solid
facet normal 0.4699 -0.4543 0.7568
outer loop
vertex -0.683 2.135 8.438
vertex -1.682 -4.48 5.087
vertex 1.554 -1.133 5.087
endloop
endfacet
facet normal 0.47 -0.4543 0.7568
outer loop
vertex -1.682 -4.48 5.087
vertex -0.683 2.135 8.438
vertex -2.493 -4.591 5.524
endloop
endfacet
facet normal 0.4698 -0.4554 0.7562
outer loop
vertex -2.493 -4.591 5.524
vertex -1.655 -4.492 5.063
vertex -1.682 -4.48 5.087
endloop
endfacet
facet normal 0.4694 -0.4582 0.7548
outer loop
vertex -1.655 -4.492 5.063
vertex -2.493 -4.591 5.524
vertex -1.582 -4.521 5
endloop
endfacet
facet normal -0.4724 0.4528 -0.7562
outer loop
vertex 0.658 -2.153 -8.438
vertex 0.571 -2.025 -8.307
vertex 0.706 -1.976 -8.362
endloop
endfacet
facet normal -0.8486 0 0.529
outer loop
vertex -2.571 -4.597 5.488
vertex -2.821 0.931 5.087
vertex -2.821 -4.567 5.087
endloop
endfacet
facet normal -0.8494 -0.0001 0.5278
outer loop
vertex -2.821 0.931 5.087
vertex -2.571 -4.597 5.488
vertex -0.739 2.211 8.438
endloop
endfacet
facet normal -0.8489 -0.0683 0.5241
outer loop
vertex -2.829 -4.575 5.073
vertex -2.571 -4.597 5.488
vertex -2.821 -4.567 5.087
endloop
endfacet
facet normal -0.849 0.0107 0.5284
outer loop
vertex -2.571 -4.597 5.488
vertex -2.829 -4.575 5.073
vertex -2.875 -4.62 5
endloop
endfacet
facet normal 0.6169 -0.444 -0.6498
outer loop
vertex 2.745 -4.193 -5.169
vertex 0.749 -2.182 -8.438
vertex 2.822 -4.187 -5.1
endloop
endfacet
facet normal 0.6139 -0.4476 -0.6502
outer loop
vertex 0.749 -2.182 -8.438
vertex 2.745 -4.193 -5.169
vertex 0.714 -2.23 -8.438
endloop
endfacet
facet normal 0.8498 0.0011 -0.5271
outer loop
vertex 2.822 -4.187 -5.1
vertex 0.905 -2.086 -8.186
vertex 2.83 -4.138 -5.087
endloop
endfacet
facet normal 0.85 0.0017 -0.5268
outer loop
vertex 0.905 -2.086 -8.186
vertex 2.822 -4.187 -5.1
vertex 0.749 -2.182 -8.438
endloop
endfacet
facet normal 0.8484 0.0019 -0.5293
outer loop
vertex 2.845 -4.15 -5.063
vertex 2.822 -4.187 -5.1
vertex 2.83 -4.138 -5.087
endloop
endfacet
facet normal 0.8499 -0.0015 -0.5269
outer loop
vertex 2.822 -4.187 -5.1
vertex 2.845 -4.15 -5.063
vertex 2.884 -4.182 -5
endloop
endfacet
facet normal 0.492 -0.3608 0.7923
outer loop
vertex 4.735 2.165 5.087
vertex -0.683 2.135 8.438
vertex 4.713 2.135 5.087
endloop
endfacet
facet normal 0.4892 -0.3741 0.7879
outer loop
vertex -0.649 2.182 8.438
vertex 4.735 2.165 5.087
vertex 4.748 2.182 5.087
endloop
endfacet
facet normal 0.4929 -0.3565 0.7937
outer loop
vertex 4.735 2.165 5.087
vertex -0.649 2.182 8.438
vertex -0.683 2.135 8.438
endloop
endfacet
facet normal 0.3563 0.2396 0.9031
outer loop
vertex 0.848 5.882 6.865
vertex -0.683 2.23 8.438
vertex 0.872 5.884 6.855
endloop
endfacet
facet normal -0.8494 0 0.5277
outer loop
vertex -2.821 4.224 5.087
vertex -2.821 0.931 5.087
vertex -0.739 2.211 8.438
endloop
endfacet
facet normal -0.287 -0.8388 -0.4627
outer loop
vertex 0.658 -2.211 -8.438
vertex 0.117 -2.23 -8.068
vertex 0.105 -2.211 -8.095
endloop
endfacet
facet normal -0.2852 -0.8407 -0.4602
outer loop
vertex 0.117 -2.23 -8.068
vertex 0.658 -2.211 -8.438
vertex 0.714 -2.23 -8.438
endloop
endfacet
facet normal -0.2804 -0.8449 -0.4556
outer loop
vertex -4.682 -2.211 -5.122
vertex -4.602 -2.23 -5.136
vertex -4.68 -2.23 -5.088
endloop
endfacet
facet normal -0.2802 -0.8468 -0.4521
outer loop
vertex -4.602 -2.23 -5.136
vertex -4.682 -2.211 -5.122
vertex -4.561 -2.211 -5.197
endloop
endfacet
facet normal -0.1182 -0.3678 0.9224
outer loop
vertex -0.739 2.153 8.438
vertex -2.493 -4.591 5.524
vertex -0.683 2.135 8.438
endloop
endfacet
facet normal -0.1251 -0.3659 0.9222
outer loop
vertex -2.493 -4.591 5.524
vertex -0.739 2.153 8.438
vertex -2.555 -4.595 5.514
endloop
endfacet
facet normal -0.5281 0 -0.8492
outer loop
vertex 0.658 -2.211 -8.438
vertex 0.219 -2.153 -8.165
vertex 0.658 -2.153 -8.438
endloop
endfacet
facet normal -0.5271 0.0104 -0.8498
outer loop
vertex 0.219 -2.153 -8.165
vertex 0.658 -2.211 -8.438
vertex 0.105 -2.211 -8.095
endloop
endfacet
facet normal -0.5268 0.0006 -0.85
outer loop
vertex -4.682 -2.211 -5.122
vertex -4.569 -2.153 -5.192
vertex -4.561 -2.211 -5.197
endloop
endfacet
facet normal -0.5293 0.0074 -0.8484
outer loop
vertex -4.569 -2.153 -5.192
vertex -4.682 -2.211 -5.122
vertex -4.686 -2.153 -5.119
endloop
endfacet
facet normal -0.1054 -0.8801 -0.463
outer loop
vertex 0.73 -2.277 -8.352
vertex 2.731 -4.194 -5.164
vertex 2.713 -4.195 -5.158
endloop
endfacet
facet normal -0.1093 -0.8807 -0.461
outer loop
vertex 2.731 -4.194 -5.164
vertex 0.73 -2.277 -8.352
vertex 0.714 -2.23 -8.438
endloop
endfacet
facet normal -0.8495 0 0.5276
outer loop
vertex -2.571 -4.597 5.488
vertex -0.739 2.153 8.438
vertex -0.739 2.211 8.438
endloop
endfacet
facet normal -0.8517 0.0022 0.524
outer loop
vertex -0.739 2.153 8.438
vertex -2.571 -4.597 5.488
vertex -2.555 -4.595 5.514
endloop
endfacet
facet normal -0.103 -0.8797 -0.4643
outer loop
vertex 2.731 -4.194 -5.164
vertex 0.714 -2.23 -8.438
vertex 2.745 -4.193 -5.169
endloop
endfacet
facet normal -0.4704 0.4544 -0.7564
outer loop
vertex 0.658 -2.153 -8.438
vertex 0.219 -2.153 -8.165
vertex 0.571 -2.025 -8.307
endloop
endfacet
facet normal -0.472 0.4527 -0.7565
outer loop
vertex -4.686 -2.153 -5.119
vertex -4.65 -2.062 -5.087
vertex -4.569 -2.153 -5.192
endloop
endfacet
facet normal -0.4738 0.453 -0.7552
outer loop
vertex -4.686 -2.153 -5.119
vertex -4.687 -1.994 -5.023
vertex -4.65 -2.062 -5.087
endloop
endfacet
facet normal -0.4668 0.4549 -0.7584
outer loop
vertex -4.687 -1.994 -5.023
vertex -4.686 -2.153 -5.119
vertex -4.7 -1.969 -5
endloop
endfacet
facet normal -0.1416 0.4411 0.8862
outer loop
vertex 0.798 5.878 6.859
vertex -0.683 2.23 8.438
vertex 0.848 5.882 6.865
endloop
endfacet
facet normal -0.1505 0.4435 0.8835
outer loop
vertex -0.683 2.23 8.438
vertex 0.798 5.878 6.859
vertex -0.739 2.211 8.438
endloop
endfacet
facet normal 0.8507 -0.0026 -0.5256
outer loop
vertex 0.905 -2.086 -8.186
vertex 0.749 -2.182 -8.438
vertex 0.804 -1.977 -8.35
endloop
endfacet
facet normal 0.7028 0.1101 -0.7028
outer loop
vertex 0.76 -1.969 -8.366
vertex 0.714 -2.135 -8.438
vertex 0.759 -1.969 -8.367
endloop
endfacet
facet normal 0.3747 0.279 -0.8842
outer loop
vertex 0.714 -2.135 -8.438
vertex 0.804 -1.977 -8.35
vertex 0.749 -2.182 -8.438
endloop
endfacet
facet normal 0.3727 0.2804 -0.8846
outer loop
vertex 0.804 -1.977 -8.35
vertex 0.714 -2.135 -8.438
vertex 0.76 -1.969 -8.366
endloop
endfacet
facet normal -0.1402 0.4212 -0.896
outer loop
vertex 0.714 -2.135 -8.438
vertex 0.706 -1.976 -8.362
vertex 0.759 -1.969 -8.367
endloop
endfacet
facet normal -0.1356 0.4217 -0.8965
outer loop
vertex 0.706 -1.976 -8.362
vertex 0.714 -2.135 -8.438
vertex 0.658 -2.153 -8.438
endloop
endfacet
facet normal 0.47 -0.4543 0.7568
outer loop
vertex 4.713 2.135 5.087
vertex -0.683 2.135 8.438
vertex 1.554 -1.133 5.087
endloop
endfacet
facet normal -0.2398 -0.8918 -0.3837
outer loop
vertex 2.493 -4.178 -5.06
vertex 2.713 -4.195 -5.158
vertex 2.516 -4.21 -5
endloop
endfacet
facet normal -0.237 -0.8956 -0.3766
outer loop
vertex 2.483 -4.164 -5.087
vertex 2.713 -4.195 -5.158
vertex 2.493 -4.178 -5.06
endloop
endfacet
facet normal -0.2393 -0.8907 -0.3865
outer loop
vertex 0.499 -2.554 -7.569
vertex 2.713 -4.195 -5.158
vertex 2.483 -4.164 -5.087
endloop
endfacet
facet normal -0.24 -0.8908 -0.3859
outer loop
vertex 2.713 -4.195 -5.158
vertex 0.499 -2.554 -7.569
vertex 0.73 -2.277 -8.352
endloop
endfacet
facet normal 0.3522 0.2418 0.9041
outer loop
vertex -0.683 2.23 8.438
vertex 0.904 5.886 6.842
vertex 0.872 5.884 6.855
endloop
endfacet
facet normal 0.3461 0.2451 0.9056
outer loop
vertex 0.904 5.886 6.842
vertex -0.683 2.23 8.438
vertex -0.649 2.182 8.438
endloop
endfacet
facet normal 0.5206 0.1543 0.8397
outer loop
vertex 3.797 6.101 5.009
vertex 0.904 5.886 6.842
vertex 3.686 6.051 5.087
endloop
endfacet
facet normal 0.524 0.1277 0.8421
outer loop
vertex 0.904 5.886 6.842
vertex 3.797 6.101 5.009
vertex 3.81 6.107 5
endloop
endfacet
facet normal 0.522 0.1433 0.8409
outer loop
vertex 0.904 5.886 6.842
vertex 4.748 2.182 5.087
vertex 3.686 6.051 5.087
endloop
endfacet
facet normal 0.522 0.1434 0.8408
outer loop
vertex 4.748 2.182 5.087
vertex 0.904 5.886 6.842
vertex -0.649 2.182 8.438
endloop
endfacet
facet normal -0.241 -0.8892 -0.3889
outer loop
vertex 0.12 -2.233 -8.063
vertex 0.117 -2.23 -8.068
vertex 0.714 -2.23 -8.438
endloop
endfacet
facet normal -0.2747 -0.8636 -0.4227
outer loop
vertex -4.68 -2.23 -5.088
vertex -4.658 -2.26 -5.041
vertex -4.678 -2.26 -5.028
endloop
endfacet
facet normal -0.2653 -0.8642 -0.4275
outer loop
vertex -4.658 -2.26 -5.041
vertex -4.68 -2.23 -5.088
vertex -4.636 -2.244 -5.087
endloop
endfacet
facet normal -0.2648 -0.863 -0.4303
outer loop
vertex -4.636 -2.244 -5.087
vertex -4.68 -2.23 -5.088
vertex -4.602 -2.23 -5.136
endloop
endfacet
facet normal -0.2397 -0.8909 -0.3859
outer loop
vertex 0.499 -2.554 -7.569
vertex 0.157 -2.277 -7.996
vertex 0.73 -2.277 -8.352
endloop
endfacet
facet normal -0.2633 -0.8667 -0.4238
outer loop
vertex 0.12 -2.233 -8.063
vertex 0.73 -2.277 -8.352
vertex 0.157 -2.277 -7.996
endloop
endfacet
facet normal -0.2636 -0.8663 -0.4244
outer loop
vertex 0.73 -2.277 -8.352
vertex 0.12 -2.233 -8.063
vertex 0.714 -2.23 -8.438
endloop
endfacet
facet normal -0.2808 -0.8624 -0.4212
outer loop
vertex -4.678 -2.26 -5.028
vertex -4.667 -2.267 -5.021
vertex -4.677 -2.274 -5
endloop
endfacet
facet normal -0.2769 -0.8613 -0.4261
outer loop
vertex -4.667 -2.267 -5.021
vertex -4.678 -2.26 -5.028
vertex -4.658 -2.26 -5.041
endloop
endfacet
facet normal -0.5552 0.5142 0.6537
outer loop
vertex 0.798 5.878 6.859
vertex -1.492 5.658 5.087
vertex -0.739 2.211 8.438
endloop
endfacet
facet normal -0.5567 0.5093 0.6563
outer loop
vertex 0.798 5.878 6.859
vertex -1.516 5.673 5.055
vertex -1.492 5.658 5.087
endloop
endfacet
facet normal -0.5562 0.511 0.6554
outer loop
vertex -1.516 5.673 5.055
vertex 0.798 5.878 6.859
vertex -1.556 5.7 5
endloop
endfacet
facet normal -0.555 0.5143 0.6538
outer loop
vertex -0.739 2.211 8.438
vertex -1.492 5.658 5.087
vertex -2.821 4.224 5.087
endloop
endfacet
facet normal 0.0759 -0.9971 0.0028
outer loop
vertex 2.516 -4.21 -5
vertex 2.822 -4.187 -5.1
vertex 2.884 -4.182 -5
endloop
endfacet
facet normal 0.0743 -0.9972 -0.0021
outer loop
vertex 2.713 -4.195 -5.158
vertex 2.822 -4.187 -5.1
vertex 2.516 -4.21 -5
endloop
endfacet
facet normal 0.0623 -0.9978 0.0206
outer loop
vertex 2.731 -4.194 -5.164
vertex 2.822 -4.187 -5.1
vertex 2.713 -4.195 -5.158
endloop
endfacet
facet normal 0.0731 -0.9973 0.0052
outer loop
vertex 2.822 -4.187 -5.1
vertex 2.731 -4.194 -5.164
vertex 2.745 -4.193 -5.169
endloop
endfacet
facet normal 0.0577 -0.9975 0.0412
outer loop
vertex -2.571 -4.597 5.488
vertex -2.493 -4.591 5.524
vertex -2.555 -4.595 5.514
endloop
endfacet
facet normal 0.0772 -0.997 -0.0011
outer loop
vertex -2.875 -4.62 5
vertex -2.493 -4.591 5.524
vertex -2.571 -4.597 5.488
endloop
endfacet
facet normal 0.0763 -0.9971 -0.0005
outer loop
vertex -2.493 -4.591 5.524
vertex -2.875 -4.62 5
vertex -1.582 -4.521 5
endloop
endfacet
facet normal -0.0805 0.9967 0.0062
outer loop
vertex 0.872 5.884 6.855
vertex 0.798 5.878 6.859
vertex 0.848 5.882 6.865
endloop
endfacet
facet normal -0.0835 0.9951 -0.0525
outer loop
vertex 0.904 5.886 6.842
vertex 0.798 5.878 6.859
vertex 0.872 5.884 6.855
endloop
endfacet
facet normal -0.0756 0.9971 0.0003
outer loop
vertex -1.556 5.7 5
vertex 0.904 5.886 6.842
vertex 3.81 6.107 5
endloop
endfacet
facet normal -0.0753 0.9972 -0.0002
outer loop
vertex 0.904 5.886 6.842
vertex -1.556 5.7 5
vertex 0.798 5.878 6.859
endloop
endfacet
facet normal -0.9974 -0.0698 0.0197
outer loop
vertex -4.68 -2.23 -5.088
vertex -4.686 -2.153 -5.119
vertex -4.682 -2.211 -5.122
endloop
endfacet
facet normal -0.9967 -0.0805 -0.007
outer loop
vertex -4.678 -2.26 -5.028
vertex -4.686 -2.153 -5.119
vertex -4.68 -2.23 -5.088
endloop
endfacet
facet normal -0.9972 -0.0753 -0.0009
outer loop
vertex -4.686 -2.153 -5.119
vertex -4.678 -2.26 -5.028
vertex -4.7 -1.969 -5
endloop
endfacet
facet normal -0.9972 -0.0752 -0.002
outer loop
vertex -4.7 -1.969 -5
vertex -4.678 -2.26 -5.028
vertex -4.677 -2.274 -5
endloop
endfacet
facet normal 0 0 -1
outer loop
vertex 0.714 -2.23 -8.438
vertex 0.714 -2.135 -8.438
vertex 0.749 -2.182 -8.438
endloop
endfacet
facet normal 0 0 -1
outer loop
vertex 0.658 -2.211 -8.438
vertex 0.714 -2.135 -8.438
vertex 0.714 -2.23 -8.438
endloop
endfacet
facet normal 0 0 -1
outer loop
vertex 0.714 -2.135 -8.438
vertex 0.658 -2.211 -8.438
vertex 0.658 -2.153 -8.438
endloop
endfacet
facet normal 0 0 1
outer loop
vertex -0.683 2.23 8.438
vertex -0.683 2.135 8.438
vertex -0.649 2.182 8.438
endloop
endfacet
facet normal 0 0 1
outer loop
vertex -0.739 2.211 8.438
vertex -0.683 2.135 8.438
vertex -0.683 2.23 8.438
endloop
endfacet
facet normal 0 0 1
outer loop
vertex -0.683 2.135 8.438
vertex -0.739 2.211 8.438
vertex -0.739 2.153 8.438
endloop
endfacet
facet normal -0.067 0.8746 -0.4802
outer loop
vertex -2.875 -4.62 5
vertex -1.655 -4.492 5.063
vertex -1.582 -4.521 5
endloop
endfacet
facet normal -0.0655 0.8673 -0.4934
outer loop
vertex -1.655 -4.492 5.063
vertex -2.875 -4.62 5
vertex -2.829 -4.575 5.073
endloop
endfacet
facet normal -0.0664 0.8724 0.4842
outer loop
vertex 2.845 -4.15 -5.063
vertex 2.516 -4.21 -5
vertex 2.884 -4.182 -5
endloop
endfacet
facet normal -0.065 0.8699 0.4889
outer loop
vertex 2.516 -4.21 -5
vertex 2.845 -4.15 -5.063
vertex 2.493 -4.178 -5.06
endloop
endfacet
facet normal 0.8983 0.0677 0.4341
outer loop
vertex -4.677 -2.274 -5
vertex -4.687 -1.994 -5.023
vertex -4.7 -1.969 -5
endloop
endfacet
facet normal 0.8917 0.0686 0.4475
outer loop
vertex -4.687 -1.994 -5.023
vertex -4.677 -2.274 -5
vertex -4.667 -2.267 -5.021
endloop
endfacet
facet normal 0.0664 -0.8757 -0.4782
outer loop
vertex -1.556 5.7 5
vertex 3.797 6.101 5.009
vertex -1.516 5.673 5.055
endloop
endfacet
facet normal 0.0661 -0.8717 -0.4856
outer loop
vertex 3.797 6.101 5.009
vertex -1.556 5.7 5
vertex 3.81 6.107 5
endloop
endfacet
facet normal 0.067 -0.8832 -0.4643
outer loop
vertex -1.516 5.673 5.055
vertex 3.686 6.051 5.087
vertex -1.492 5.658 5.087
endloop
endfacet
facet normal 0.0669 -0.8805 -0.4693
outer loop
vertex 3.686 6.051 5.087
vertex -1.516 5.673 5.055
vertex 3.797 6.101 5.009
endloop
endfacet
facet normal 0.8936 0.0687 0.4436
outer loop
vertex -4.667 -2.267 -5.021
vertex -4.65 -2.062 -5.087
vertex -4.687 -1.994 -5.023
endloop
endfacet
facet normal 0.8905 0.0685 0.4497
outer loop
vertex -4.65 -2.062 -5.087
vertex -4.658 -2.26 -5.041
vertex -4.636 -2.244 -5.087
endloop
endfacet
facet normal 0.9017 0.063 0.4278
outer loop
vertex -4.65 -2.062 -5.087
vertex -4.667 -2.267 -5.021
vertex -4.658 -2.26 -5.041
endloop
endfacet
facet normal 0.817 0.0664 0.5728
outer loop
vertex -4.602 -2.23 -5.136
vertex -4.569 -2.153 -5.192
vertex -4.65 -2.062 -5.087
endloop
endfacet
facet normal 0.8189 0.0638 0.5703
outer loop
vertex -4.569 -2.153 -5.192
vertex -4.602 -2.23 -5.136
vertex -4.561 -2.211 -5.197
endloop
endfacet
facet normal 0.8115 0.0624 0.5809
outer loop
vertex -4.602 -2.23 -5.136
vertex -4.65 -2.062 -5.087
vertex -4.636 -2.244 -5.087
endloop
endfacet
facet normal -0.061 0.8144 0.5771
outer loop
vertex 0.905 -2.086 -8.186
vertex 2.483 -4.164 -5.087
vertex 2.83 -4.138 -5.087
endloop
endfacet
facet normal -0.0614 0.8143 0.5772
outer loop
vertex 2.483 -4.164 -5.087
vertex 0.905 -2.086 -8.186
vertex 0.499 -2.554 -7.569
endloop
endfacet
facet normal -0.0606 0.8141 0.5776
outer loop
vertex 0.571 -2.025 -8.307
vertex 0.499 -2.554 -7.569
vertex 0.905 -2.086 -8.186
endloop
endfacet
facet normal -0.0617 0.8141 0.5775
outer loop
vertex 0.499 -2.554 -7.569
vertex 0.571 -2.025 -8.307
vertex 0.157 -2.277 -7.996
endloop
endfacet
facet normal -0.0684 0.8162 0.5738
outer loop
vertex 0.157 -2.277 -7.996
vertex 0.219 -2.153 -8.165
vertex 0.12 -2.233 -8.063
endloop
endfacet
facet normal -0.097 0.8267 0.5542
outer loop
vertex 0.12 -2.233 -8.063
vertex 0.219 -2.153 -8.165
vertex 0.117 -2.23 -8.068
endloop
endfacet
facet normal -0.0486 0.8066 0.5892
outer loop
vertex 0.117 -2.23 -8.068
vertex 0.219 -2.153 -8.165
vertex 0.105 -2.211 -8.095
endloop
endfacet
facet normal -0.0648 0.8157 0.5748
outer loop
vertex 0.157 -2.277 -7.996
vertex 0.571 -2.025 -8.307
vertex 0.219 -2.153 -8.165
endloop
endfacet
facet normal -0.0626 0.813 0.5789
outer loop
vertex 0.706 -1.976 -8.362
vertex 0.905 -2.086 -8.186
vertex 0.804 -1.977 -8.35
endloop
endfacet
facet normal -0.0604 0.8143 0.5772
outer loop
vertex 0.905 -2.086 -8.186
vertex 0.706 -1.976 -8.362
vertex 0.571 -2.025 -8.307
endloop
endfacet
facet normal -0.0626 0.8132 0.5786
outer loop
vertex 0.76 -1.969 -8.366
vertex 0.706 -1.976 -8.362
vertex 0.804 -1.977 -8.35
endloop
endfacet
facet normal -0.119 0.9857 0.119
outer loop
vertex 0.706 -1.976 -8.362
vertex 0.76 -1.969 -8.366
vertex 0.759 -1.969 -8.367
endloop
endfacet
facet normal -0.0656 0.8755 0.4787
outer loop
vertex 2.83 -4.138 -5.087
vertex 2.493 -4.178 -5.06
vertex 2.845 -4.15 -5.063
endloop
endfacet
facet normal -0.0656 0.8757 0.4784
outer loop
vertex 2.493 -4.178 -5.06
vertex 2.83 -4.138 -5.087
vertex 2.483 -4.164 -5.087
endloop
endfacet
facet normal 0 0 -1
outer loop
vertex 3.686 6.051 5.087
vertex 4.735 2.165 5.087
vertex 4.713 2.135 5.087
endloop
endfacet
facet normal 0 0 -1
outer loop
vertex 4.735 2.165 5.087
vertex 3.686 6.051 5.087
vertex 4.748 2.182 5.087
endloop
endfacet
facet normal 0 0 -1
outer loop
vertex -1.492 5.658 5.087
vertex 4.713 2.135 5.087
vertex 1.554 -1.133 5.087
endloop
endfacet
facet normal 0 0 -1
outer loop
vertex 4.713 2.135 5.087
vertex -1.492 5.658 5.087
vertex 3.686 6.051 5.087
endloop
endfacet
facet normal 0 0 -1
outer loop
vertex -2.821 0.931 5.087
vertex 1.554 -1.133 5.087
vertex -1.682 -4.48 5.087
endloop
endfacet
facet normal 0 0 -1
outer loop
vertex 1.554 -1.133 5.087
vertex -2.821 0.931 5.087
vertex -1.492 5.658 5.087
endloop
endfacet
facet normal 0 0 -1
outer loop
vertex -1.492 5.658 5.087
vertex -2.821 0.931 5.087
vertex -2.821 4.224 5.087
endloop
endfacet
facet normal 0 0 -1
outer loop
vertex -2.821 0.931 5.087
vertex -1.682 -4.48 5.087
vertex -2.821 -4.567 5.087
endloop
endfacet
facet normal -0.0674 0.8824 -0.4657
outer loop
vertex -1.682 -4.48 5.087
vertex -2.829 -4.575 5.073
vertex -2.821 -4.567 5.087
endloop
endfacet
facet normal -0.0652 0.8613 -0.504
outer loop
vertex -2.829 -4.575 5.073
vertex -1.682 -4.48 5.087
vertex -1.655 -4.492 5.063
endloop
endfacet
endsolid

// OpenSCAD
// Auto-generated OpenSCAD file

    inner_points = 10*[[0.5559449618614191, -0.3881500309253424, -0.49999999999987577], [0.5559449618612677, -0.388150030925249, 0.5000000000001242], [0.48020738242017447, 0.6089777537945407, -0.4999999999999803], [0.48020738242002303, 0.6089777537946339, 0.5000000000000198], [-0.4411828228584638, -0.463887610366587, -0.5000000000000198], [-0.4411828228586152, -0.46388761036649373, 0.4999999999999803], [-0.5169204022997085, 0.5332401743532961, -0.5000000000001242], [-0.5169204022998598, 0.5332401743533893, 0.49999999999987577], [0.019512279780962472, 0.0725450717139109, -1.2071067811865475]];

    outer_points = 10*[[0.3096145243221563, 0.6725957727848044, -0.4491700933508113], [0.06987533319280242, -0.21820844720590366, -0.8351661579465389], [0.7796115315738568, 0.21820844720590366, 0.3075563906100046], [0.5398723404445028, -0.6725957727848044, -0.07843967398572299], [-0.5398723404445028, 0.6725957727848044, 0.07843967398572299], [-0.7796115315738568, -0.21820844720590366, -0.3075563906100046], [-0.06987533319280242, 0.21820844720590366, 0.8351661579465389], [-0.3096145243221563, -0.6725957727848044, 0.4491700933508113], [0.28939080332842093, 1.0752958146603768, 0.46593846708482345]];

    // Convex hull for inner set (I)
    module inner_hull() {
        hull() {
            for (p = inner_points) {
                translate(p) sphere(r=0.1);
            }
        }
    }

    // Convex hull for outer set (O) minus inner hull (O \ I)
    module outer_minus_inner() {
        difference() {
            hull() {
                for (p = outer_points) {
                    translate(p) sphere(r=0.1);
                }
            }
            inner_hull(); // Subtract inner hull
        }
    }

    // Convex hull for outer set (O) minus all translated inner hulls
    module outer_minus_AllTranslationInner() {
        difference() {
            hull() {
                for (p = outer_points) {
                    translate(p) sphere(r=0.1);
                }
            }
            hull() {
                translate([0,0,50]) inner_hull();
                translate([0,0,-50]) inner_hull();
            }; // Subtract translated inner hulls
        }
    }

    // Difference between outer_minus_inner and outer_minus_AllTranslationInner
    module outer_minus_inner_diff() {
        difference() {
            // Outer minus inner
            difference() {
                hull() {
                    for (p = outer_points) {
                        translate(p) sphere(r=0.1);
                    }
                }
                inner_hull();
            }

            // Subtract Outer minus AllTranslationInner
            difference() {
                hull() {
                    for (p = outer_points) {
                        translate(p) sphere(r=0.1);
                    }
                }
                hull() {
                    translate([0,0,50]) inner_hull();
                    translate([0,0,-50]) inner_hull();
                };
            }
        }
    }

    // Rendering all with colors applied
    color([1, 1, 0, 1]) outer_minus_inner_diff(); // Opaque yellow
    
